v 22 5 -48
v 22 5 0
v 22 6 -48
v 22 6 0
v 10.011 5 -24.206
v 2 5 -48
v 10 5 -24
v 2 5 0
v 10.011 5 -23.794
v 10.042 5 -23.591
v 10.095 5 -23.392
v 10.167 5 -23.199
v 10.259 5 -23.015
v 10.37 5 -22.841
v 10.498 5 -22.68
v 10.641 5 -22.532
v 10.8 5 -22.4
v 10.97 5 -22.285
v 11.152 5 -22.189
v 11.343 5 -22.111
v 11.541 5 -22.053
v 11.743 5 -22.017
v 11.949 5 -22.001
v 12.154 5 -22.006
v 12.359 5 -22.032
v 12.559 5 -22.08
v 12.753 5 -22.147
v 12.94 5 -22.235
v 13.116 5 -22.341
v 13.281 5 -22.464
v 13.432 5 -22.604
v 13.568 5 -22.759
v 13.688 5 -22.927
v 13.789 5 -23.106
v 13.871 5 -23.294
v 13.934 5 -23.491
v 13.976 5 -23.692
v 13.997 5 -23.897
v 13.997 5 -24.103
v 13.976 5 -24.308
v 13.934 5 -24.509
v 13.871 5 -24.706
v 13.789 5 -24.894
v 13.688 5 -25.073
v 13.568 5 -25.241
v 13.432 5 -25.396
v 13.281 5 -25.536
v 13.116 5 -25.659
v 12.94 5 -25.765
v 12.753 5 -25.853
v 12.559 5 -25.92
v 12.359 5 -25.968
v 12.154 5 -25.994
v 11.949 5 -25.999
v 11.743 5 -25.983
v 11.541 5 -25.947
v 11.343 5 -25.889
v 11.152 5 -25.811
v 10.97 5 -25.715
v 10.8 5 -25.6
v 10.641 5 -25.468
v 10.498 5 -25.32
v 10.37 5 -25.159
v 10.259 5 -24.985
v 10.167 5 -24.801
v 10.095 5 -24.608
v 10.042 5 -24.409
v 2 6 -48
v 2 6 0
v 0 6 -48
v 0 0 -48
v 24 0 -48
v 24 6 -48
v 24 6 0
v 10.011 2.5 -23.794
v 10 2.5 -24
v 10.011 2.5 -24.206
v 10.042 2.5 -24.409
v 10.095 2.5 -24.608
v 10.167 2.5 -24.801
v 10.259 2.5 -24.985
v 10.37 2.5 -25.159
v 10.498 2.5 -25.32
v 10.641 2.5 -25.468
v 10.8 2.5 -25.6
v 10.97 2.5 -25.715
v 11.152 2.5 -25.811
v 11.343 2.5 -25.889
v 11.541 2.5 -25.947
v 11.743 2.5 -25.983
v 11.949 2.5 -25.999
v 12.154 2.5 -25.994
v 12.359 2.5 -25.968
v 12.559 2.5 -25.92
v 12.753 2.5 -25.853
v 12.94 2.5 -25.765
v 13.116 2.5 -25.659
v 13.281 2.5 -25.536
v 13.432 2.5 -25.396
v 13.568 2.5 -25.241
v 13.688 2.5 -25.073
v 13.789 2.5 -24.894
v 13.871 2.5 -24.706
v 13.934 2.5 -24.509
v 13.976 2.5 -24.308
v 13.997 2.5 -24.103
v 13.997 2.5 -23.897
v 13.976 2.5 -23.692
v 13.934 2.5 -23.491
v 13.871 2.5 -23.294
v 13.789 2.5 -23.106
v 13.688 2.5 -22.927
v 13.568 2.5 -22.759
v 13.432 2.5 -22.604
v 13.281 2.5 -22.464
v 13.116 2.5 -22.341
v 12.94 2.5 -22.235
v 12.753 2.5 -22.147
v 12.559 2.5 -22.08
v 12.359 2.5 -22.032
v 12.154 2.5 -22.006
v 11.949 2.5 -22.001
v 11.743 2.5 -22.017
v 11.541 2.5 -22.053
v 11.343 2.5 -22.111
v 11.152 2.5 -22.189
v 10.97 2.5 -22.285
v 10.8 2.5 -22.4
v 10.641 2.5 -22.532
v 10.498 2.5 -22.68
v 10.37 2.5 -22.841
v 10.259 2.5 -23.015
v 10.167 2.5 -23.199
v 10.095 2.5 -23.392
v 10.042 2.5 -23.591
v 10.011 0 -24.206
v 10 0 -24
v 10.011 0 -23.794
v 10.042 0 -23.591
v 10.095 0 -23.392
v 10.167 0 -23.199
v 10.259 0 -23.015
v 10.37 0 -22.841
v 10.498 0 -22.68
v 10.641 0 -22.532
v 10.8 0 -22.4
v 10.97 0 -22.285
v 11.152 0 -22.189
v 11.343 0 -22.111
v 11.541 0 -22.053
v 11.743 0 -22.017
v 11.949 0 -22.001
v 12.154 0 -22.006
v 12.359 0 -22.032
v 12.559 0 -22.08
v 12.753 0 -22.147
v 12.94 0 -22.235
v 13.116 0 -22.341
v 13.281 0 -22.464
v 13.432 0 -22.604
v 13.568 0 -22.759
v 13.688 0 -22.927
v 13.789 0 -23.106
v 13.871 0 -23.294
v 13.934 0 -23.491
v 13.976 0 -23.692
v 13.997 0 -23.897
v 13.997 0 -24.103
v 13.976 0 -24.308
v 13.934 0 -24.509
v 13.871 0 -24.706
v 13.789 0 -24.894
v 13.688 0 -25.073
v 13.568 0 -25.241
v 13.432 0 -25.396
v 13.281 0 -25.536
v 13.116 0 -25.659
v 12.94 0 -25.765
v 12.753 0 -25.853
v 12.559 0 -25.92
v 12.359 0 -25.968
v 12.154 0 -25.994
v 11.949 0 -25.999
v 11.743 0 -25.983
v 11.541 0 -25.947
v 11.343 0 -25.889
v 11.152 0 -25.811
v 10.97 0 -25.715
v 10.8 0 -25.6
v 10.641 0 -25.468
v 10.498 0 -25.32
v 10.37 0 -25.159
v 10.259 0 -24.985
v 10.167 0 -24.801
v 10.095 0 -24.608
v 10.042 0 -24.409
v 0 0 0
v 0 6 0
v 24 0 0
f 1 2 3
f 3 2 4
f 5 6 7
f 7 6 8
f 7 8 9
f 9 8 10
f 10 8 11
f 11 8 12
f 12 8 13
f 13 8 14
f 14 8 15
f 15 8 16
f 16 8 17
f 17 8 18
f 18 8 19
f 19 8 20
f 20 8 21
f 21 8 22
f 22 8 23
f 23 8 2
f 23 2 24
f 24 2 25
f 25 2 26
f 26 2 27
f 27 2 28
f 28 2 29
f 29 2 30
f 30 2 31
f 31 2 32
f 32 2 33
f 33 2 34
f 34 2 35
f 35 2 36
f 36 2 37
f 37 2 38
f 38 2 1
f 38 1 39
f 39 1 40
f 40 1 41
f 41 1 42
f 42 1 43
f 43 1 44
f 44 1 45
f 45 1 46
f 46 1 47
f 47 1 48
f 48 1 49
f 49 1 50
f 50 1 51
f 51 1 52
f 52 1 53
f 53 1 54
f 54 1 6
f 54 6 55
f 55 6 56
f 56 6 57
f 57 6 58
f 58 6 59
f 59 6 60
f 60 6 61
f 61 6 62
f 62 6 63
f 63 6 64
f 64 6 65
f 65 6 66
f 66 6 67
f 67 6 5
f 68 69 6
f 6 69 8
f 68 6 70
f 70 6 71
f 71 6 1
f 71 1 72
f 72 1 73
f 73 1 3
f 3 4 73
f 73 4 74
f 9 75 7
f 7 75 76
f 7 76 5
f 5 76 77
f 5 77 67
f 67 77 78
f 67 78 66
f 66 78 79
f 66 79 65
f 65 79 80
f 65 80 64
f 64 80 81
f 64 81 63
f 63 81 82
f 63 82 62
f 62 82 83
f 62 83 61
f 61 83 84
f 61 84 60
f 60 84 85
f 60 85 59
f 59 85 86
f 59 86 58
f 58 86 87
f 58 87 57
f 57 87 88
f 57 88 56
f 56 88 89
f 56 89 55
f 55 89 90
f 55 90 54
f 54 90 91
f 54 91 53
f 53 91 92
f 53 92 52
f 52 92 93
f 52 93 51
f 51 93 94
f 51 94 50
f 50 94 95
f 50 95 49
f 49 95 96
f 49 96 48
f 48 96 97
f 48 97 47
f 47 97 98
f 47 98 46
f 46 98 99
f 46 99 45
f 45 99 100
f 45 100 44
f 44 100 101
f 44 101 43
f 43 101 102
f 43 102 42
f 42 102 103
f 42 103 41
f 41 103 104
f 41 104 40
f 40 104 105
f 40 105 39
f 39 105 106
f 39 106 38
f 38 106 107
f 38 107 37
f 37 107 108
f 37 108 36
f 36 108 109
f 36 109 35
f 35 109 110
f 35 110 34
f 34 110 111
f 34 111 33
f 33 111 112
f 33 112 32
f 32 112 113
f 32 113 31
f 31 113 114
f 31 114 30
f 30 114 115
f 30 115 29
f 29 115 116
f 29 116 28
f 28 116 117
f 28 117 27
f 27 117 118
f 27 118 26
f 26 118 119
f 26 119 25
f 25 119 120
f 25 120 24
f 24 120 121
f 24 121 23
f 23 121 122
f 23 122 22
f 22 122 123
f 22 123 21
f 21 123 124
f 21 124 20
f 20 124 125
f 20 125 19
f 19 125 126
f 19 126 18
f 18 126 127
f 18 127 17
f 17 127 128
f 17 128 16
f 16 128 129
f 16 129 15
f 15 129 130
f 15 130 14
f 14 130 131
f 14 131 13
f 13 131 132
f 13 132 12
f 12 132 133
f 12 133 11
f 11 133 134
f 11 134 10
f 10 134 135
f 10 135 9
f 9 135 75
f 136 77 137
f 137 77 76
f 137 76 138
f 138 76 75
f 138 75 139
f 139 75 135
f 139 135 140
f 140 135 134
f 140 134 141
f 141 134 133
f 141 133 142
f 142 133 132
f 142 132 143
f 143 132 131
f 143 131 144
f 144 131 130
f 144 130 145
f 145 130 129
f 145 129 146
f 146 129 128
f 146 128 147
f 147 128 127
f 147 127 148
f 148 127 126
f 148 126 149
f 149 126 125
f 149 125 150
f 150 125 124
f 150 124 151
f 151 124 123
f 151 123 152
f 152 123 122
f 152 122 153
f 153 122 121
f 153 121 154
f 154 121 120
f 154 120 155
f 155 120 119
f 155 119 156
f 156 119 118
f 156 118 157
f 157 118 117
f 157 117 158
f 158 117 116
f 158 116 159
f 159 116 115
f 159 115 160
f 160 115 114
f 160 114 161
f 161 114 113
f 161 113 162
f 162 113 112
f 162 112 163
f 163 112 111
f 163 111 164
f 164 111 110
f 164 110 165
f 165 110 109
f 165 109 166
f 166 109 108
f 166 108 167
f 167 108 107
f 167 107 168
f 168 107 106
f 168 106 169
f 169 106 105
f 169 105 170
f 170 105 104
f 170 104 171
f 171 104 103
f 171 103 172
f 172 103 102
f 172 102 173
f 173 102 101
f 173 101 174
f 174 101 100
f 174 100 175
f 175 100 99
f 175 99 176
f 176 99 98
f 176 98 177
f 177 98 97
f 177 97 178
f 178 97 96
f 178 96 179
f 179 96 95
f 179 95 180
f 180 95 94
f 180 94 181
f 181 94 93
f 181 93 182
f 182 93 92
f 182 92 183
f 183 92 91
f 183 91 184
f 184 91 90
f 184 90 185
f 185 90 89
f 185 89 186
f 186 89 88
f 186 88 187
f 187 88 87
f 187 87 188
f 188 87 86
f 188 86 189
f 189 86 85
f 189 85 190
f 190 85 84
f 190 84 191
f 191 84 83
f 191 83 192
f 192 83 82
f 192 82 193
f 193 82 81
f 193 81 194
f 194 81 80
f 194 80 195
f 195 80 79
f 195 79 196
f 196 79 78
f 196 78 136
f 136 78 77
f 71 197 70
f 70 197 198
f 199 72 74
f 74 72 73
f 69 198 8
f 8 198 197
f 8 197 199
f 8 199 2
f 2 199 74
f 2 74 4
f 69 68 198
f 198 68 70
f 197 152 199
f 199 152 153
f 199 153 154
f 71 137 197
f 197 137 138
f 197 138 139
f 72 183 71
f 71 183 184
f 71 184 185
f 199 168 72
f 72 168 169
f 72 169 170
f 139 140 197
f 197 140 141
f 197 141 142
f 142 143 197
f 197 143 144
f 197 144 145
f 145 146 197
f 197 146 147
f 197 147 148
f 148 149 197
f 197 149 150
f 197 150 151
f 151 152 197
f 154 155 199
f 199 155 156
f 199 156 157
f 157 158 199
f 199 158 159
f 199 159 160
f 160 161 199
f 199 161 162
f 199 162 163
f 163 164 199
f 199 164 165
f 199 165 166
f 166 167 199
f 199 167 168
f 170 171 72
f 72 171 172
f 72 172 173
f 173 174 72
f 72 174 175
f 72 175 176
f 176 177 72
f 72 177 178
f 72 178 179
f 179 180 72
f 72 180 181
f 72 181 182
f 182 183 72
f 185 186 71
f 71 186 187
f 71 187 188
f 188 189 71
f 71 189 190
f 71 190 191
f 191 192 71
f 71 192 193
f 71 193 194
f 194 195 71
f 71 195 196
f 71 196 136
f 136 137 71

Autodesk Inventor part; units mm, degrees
ref_plane "YZ Plane" through (0, 0, 0) normal (1, 0, 0) x (0, 1, 0)
ref_plane "XZ Plane" through (0, 0, 0) normal (0, 1, 0) x (-1, 0, 0)
ref_plane "XY Plane" through (0, 0, 0) normal (0, 0, 1) x (1, 0, 0)
sketch "Sketch1" plane through (0, 0, 0) normal (0, 1, 0) x (-1, 0, 0)
  line L0 (0, 0) -> (-24, 0)
  line L1 (-24, 0) -> (-24, -48)
  line L2 (-24, -48) -> (0, -48)
  line L3 (0, -48) -> (0, 0)
  circle A0 centre (-12, -24) radius 2
  point P0 (-24, -24)
  point P1 (-12, 0)
  dimension "d0" = 24
  dimension "d1" = 48
  dimension "d2" = 4
extrude "Extrusion1" add sketch "Sketch1" along normal blind 6
sketch "Sketch2" plane through (0, 6, 0) normal (0, 1, 0) x (1, 0, 0)
  line L0 (2, 75.3172) -> (22, 75.3172)
  line L1 (22, 75.3172) -> (22, -3.0502)
  line L2 (22, -3.0502) -> (2, -3.0502)
  line L3 (2, -3.0502) -> (2, 75.3172)
  line L4 (0, 48) -> (0, 0) projected
  dimension "d5" = 20
  dimension "d6" = 2
extrude "Extrusion2" cut sketch "Sketch2" against normal blind 1
properties part number "centershortNEW"
